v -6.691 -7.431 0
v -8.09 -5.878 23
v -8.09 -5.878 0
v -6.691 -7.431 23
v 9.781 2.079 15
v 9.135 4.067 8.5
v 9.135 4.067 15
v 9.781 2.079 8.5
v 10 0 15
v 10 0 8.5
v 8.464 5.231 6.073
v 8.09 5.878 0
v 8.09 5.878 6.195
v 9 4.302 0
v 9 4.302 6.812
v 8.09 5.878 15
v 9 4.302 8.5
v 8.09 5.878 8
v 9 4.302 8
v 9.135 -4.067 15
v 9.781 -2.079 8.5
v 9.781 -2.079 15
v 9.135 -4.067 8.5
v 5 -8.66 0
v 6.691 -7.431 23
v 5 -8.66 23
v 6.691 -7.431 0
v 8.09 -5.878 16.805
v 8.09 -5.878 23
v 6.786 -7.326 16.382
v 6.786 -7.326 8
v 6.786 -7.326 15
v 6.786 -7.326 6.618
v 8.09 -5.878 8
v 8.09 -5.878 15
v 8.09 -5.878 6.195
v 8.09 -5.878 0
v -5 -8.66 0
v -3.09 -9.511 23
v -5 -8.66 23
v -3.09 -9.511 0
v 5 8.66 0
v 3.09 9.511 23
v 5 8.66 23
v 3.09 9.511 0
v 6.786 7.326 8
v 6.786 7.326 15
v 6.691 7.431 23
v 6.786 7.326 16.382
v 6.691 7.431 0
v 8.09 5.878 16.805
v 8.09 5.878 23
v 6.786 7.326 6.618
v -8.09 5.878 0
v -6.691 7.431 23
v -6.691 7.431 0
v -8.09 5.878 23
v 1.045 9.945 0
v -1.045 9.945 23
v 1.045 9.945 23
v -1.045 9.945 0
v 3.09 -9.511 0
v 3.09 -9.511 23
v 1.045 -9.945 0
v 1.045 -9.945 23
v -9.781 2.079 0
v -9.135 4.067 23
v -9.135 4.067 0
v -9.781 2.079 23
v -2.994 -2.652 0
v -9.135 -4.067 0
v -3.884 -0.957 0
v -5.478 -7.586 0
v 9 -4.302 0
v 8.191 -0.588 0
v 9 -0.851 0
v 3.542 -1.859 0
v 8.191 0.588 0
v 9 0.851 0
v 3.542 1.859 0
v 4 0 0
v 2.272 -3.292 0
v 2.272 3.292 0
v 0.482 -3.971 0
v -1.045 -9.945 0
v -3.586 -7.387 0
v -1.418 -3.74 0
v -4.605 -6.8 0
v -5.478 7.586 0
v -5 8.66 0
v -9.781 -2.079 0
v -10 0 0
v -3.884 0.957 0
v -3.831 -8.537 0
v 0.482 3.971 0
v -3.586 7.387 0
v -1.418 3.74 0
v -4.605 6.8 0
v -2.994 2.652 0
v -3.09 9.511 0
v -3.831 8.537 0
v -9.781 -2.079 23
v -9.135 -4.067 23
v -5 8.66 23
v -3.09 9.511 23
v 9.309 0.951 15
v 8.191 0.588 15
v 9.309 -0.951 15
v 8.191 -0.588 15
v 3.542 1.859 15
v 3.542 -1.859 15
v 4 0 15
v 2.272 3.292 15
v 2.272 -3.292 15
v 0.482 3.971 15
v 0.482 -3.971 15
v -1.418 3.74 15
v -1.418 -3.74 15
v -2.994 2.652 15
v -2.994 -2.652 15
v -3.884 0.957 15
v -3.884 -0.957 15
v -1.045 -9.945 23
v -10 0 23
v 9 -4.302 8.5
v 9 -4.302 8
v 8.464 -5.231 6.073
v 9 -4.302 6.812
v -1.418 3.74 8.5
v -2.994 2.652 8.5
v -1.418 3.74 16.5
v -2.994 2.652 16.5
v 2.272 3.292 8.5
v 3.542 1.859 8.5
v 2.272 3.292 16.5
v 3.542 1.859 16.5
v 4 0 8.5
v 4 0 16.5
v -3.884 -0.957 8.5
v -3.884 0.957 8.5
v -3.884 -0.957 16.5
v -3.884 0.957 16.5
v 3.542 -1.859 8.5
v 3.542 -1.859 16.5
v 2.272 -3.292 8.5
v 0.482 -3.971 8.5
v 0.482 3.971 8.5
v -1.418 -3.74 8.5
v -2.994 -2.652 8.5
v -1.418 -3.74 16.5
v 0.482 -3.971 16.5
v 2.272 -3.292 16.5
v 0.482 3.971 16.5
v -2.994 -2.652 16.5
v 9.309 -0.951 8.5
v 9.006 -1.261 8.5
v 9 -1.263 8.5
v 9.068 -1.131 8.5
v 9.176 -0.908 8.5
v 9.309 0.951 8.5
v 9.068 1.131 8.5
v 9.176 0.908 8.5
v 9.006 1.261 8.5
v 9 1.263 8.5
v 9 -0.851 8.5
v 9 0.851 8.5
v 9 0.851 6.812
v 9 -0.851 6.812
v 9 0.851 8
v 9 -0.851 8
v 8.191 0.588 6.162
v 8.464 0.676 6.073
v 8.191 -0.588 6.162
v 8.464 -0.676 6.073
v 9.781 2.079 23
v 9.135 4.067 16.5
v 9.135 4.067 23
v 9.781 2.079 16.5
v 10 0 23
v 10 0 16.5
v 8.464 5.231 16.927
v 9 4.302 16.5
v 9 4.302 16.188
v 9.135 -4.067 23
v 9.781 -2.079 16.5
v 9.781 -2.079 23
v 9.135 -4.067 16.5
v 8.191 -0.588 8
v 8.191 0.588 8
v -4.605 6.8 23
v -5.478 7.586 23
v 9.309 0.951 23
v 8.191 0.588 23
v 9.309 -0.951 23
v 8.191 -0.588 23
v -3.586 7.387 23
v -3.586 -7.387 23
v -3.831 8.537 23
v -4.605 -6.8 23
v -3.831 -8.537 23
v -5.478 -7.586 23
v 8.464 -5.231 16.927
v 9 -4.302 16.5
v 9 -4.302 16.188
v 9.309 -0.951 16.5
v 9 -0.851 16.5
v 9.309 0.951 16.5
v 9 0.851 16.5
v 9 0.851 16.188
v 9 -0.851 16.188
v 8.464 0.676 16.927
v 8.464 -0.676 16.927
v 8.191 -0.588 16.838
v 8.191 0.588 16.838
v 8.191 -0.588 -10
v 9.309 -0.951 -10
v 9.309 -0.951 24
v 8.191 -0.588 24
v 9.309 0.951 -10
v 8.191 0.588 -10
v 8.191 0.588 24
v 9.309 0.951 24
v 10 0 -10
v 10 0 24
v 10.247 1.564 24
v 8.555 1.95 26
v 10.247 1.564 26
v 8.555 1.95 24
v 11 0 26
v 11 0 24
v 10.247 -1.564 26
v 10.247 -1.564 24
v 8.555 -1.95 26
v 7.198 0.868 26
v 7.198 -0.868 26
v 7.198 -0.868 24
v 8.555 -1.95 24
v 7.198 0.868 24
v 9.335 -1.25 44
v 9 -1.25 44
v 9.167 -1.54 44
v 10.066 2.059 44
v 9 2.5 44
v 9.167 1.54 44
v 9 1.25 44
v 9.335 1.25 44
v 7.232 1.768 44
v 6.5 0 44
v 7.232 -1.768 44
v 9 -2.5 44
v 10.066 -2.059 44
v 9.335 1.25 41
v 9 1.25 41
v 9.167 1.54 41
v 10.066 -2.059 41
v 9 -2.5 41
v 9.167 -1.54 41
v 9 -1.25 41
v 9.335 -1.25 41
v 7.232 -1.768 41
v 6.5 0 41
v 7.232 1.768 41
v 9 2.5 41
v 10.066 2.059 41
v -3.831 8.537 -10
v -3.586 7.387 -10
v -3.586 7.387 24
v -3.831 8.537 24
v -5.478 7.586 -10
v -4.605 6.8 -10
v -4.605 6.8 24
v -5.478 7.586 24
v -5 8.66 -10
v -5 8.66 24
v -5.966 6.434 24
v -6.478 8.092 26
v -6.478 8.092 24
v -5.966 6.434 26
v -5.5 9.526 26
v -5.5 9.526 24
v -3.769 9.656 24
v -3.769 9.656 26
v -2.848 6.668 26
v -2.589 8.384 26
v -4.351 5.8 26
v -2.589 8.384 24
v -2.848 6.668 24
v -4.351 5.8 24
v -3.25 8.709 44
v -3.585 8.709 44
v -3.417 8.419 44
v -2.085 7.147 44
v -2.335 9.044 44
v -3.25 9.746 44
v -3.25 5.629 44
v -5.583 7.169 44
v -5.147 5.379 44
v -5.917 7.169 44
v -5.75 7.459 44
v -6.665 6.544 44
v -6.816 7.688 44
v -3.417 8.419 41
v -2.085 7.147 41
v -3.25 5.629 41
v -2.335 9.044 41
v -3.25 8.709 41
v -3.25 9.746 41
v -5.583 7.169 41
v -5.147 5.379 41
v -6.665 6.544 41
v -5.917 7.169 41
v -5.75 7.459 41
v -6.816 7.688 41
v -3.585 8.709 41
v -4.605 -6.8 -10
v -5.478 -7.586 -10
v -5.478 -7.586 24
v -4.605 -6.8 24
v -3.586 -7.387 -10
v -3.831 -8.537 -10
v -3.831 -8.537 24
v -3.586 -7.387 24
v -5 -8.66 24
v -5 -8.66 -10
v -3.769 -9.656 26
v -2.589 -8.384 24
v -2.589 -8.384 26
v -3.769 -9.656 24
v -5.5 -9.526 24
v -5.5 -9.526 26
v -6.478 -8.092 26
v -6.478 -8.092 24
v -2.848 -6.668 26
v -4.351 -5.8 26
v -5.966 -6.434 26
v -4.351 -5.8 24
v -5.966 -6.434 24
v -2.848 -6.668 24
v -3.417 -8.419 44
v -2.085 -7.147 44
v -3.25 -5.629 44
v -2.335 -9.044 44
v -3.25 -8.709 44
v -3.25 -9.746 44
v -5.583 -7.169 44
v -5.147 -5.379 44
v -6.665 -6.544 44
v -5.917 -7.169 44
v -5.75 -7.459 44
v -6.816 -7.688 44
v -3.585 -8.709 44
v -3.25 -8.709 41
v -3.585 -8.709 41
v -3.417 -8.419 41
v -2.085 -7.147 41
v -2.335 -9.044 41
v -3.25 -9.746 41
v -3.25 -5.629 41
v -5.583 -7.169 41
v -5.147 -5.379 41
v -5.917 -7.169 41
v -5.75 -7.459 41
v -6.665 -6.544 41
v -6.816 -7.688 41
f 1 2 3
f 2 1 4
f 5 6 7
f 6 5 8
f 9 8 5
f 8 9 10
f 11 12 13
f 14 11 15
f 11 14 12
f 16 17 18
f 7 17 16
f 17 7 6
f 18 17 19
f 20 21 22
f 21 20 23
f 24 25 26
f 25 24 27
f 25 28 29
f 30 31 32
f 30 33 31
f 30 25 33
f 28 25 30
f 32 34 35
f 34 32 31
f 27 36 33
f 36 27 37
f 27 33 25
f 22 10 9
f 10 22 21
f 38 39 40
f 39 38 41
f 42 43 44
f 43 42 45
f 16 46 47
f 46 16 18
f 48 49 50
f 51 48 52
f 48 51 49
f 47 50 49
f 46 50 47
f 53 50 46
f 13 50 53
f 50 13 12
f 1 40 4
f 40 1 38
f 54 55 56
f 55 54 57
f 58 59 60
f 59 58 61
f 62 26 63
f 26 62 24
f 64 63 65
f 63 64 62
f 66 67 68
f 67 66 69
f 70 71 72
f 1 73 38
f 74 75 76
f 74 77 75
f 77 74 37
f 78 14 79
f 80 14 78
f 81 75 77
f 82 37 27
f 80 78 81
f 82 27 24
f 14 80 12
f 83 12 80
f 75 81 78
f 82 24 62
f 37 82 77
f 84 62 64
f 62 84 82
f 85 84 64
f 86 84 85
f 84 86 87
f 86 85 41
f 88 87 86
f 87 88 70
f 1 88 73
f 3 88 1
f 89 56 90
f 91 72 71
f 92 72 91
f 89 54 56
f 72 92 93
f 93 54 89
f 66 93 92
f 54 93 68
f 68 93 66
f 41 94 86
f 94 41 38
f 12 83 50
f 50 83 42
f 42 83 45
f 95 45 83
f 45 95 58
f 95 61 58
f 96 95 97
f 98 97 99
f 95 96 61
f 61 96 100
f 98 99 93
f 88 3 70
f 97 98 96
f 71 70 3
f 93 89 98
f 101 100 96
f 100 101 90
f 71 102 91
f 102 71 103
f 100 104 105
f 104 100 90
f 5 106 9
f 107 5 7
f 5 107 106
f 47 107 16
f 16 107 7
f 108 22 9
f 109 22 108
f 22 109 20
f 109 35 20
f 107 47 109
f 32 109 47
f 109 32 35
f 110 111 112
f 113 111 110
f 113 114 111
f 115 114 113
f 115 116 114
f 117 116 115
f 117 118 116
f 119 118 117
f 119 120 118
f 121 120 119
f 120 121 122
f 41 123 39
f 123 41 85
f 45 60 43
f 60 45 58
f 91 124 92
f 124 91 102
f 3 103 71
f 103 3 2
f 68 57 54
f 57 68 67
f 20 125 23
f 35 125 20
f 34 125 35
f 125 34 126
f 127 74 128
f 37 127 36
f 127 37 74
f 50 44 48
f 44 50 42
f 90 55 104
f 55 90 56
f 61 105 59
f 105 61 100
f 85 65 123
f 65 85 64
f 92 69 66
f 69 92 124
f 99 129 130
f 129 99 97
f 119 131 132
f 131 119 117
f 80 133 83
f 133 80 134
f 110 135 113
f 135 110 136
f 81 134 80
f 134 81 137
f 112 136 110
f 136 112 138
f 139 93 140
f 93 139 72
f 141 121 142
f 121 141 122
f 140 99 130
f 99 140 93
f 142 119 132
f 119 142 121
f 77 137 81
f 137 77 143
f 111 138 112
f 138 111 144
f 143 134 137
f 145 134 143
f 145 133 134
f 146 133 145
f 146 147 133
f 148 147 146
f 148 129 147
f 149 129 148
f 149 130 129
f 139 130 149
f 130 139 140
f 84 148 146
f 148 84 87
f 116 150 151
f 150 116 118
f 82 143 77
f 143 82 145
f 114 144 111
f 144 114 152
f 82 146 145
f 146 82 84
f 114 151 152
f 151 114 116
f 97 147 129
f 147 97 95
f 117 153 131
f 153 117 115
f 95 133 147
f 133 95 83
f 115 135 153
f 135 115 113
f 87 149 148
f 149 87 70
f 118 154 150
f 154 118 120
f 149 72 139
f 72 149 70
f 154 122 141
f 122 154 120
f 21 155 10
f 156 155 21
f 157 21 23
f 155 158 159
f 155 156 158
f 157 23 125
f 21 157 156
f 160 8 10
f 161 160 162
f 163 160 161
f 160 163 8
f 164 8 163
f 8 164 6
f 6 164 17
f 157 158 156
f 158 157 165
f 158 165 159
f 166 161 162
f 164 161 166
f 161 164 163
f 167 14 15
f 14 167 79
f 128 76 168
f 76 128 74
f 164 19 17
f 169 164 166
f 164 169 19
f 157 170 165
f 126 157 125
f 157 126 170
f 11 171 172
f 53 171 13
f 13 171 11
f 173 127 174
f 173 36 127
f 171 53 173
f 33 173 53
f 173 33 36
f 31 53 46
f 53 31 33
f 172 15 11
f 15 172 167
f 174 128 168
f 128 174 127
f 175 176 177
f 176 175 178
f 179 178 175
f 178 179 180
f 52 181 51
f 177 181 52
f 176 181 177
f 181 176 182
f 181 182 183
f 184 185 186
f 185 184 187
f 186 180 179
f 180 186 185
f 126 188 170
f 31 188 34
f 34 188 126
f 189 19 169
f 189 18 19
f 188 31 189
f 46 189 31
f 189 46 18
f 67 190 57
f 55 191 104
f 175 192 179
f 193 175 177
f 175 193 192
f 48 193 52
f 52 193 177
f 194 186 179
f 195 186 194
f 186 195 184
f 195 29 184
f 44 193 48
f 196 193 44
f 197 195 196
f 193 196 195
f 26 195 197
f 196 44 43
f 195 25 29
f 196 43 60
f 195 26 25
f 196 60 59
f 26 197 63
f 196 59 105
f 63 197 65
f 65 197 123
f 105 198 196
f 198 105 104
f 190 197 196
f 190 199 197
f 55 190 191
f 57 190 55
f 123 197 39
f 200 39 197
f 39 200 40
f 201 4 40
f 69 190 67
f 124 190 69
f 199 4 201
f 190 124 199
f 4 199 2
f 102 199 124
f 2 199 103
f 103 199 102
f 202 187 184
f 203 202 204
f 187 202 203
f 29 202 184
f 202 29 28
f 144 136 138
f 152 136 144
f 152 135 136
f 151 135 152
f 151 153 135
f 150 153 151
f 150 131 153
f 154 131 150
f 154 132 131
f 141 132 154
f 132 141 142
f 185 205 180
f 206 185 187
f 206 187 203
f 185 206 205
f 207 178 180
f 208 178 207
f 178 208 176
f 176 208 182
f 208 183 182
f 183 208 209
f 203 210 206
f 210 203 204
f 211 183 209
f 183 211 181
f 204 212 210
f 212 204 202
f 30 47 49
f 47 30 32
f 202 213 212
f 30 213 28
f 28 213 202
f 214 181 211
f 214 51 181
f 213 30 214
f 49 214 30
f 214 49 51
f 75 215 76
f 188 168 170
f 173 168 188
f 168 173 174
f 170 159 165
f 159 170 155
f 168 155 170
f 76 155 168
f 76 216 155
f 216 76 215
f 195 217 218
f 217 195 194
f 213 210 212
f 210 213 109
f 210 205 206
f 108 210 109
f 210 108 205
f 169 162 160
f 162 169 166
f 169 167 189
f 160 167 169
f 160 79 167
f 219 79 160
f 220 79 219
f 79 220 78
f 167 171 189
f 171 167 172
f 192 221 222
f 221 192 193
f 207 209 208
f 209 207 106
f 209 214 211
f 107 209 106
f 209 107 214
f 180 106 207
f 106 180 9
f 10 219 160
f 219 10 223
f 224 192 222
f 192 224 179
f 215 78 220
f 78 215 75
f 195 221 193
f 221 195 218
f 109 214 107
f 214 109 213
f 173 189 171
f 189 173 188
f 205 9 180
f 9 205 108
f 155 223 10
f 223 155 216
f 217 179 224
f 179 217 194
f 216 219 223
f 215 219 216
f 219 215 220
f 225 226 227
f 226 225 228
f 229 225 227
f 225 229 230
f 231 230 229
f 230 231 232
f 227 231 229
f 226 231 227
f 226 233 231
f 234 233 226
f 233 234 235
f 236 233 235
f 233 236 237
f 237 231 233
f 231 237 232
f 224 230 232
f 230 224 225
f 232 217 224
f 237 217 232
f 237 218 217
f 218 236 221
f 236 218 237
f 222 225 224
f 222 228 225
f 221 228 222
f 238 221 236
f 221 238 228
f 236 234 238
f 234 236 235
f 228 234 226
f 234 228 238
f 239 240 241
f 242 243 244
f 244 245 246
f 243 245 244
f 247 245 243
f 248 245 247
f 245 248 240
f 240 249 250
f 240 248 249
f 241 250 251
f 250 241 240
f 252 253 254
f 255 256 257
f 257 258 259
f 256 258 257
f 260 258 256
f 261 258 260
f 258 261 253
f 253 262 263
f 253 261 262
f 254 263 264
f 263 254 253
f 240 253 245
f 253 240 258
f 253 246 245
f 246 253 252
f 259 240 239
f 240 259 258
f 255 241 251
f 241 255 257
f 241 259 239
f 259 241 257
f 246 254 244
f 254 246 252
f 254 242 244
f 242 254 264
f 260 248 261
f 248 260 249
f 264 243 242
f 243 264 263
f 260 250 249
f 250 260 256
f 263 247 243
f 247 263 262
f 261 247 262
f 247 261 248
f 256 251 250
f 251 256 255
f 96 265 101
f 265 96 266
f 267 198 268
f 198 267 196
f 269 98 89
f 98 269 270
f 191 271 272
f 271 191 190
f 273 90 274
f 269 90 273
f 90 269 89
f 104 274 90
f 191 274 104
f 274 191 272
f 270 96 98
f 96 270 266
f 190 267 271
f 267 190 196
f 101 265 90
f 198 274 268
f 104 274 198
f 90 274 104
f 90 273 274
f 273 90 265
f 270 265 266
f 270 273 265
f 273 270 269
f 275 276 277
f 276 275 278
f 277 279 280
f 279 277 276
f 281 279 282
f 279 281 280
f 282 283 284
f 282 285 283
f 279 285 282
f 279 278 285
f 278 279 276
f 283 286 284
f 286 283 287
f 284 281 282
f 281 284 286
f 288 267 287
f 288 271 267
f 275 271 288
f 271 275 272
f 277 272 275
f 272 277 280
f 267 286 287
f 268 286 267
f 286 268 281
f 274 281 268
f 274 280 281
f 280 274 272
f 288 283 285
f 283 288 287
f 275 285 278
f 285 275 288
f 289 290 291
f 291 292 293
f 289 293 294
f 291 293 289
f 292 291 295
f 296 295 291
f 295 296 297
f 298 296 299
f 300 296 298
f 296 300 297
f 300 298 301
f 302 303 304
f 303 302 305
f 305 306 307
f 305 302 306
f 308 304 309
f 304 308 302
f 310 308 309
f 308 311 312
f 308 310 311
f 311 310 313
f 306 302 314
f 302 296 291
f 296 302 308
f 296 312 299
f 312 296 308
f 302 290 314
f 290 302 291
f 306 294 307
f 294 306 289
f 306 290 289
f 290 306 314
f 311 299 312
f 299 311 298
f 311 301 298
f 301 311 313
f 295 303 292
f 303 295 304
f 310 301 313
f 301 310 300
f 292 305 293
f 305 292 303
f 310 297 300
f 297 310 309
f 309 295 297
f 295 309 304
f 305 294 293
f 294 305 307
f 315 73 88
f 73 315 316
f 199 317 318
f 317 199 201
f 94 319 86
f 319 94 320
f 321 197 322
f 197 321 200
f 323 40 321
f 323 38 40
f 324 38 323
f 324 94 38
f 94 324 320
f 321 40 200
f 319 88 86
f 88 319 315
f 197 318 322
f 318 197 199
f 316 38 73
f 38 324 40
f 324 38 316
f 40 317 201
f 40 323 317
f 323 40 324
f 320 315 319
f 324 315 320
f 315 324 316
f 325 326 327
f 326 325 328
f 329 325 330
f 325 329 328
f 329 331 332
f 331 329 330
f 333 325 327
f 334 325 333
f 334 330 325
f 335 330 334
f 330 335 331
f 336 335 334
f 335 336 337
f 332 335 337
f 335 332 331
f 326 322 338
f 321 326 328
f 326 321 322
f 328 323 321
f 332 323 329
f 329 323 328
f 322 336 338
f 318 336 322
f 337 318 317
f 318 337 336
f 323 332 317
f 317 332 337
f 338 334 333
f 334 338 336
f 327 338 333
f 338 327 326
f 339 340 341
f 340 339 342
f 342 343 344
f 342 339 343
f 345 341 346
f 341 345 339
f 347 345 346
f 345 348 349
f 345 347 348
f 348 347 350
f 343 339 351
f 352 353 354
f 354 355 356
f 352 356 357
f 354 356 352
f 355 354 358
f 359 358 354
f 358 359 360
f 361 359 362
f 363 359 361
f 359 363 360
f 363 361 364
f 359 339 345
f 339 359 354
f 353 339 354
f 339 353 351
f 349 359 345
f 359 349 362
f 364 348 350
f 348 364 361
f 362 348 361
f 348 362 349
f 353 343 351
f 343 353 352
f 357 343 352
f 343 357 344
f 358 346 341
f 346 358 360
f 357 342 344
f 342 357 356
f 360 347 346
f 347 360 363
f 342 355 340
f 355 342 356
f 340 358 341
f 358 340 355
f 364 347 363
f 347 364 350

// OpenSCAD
// Parameters
hub_diameter = 20; // Diameter of the input and output hubs
hub_length = 15; // Length of the hubs
bore_diameter = 8; // Diameter of the central bore
slit_width = 1; // Width of the slit
threaded_hole_diameter = 3; // Diameter of the threaded hole
spacer_ring_diameter = 20; // Diameter of the flexible spacer rings
spacer_ring_thickness = 2; // Thickness of the spacer rings
spacer_ring_wave_amplitude = 2; // Amplitude of the wavy profile (increased for more pronounced waves)
spacer_ring_wave_frequency = 6; // Number of waves around the ring (increased for more waves)
screw_diameter = 2; // Diameter of the clamping screws (refined for slenderness)
screw_length = 35; // Length of the clamping screws (increased for proper length)
nut_diameter = 5; // Diameter of the clamping nuts
nut_thickness = 3; // Thickness of the clamping nuts

// Modules
module hub() {
    difference() {
        cylinder(d = hub_diameter, h = hub_length, center = true);
        translate([0, 0, -hub_length / 2])
            cylinder(d = bore_diameter, h = hub_length + 2, center = true);
        translate([hub_diameter / 2 - slit_width / 2, 0, -hub_length / 2])
            cube([slit_width, hub_diameter, hub_length + 2], center = true);
        translate([hub_diameter / 2 - 2, 0, 0])
            rotate([90, 0, 0])
                cylinder(d = threaded_hole_diameter, h = hub_diameter, center = true);
    }
}

module flexible_spacer_ring() {
    difference() {
        cylinder(d = spacer_ring_diameter, h = spacer_ring_thickness, center = true);
        translate([0, 0, -spacer_ring_thickness / 2])
            cylinder(d = spacer_ring_diameter - 2, h = spacer_ring_thickness + 2, center = true);
        for (i = [0:360 / spacer_ring_wave_frequency:360]) {
            rotate([0, 0, i])
                translate([spacer_ring_diameter / 2 - spacer_ring_wave_amplitude, 0, 0])
                    sphere(r = spacer_ring_wave_amplitude);
        }
    }
}

module clamping_screw() {
    union() {
        cylinder(d = screw_diameter, h = screw_length, center = true);
        translate([0, 0, screw_length / 2])
            cylinder(d = screw_diameter + 2, h = screw_diameter, center = true); // Hexagonal head approximation
    }
}

module clamping_nut() {
    difference() {
        cylinder(d = nut_diameter, h = nut_thickness, center = true);
        rotate([0, 0, 0])
            for (i = [0:60:360]) {
                translate([nut_diameter / 2, 0, 0])
                    rotate([0, 0, i])
                        cube([nut_diameter, nut_diameter / 2, nut_thickness], center = true); // Hexagonal shape
            }
    }
}

// Assembly
module flexible_coupling() {
    translate([0, 0, hub_length / 2])
        hub(); // Input hub
    translate([0, 0, hub_length / 2 + spacer_ring_thickness])
        flexible_spacer_ring(); // First spacer ring
    translate([0, 0, hub_length / 2 + 2 * spacer_ring_thickness])
        flexible_spacer_ring(); // Second spacer ring
    translate([0, 0, hub_length / 2 + 3 * spacer_ring_thickness])
        flexible_spacer_ring(); // Third spacer ring
    translate([0, 0, hub_length / 2 + 4 * spacer_ring_thickness])
        hub(); // Output hub

    // Clamping screws and nuts
    for (i = [0:120:360]) {
        rotate([0, 0, i]) {
            translate([hub_diameter / 2 - screw_diameter / 2, 0, hub_length / 2])
                clamping_screw();
            translate([hub_diameter / 2 - screw_diameter / 2, 0, hub_length / 2 + screw_length])
                clamping_nut();
        }
    }
}

// Render the flexible coupling
flexible_coupling();
